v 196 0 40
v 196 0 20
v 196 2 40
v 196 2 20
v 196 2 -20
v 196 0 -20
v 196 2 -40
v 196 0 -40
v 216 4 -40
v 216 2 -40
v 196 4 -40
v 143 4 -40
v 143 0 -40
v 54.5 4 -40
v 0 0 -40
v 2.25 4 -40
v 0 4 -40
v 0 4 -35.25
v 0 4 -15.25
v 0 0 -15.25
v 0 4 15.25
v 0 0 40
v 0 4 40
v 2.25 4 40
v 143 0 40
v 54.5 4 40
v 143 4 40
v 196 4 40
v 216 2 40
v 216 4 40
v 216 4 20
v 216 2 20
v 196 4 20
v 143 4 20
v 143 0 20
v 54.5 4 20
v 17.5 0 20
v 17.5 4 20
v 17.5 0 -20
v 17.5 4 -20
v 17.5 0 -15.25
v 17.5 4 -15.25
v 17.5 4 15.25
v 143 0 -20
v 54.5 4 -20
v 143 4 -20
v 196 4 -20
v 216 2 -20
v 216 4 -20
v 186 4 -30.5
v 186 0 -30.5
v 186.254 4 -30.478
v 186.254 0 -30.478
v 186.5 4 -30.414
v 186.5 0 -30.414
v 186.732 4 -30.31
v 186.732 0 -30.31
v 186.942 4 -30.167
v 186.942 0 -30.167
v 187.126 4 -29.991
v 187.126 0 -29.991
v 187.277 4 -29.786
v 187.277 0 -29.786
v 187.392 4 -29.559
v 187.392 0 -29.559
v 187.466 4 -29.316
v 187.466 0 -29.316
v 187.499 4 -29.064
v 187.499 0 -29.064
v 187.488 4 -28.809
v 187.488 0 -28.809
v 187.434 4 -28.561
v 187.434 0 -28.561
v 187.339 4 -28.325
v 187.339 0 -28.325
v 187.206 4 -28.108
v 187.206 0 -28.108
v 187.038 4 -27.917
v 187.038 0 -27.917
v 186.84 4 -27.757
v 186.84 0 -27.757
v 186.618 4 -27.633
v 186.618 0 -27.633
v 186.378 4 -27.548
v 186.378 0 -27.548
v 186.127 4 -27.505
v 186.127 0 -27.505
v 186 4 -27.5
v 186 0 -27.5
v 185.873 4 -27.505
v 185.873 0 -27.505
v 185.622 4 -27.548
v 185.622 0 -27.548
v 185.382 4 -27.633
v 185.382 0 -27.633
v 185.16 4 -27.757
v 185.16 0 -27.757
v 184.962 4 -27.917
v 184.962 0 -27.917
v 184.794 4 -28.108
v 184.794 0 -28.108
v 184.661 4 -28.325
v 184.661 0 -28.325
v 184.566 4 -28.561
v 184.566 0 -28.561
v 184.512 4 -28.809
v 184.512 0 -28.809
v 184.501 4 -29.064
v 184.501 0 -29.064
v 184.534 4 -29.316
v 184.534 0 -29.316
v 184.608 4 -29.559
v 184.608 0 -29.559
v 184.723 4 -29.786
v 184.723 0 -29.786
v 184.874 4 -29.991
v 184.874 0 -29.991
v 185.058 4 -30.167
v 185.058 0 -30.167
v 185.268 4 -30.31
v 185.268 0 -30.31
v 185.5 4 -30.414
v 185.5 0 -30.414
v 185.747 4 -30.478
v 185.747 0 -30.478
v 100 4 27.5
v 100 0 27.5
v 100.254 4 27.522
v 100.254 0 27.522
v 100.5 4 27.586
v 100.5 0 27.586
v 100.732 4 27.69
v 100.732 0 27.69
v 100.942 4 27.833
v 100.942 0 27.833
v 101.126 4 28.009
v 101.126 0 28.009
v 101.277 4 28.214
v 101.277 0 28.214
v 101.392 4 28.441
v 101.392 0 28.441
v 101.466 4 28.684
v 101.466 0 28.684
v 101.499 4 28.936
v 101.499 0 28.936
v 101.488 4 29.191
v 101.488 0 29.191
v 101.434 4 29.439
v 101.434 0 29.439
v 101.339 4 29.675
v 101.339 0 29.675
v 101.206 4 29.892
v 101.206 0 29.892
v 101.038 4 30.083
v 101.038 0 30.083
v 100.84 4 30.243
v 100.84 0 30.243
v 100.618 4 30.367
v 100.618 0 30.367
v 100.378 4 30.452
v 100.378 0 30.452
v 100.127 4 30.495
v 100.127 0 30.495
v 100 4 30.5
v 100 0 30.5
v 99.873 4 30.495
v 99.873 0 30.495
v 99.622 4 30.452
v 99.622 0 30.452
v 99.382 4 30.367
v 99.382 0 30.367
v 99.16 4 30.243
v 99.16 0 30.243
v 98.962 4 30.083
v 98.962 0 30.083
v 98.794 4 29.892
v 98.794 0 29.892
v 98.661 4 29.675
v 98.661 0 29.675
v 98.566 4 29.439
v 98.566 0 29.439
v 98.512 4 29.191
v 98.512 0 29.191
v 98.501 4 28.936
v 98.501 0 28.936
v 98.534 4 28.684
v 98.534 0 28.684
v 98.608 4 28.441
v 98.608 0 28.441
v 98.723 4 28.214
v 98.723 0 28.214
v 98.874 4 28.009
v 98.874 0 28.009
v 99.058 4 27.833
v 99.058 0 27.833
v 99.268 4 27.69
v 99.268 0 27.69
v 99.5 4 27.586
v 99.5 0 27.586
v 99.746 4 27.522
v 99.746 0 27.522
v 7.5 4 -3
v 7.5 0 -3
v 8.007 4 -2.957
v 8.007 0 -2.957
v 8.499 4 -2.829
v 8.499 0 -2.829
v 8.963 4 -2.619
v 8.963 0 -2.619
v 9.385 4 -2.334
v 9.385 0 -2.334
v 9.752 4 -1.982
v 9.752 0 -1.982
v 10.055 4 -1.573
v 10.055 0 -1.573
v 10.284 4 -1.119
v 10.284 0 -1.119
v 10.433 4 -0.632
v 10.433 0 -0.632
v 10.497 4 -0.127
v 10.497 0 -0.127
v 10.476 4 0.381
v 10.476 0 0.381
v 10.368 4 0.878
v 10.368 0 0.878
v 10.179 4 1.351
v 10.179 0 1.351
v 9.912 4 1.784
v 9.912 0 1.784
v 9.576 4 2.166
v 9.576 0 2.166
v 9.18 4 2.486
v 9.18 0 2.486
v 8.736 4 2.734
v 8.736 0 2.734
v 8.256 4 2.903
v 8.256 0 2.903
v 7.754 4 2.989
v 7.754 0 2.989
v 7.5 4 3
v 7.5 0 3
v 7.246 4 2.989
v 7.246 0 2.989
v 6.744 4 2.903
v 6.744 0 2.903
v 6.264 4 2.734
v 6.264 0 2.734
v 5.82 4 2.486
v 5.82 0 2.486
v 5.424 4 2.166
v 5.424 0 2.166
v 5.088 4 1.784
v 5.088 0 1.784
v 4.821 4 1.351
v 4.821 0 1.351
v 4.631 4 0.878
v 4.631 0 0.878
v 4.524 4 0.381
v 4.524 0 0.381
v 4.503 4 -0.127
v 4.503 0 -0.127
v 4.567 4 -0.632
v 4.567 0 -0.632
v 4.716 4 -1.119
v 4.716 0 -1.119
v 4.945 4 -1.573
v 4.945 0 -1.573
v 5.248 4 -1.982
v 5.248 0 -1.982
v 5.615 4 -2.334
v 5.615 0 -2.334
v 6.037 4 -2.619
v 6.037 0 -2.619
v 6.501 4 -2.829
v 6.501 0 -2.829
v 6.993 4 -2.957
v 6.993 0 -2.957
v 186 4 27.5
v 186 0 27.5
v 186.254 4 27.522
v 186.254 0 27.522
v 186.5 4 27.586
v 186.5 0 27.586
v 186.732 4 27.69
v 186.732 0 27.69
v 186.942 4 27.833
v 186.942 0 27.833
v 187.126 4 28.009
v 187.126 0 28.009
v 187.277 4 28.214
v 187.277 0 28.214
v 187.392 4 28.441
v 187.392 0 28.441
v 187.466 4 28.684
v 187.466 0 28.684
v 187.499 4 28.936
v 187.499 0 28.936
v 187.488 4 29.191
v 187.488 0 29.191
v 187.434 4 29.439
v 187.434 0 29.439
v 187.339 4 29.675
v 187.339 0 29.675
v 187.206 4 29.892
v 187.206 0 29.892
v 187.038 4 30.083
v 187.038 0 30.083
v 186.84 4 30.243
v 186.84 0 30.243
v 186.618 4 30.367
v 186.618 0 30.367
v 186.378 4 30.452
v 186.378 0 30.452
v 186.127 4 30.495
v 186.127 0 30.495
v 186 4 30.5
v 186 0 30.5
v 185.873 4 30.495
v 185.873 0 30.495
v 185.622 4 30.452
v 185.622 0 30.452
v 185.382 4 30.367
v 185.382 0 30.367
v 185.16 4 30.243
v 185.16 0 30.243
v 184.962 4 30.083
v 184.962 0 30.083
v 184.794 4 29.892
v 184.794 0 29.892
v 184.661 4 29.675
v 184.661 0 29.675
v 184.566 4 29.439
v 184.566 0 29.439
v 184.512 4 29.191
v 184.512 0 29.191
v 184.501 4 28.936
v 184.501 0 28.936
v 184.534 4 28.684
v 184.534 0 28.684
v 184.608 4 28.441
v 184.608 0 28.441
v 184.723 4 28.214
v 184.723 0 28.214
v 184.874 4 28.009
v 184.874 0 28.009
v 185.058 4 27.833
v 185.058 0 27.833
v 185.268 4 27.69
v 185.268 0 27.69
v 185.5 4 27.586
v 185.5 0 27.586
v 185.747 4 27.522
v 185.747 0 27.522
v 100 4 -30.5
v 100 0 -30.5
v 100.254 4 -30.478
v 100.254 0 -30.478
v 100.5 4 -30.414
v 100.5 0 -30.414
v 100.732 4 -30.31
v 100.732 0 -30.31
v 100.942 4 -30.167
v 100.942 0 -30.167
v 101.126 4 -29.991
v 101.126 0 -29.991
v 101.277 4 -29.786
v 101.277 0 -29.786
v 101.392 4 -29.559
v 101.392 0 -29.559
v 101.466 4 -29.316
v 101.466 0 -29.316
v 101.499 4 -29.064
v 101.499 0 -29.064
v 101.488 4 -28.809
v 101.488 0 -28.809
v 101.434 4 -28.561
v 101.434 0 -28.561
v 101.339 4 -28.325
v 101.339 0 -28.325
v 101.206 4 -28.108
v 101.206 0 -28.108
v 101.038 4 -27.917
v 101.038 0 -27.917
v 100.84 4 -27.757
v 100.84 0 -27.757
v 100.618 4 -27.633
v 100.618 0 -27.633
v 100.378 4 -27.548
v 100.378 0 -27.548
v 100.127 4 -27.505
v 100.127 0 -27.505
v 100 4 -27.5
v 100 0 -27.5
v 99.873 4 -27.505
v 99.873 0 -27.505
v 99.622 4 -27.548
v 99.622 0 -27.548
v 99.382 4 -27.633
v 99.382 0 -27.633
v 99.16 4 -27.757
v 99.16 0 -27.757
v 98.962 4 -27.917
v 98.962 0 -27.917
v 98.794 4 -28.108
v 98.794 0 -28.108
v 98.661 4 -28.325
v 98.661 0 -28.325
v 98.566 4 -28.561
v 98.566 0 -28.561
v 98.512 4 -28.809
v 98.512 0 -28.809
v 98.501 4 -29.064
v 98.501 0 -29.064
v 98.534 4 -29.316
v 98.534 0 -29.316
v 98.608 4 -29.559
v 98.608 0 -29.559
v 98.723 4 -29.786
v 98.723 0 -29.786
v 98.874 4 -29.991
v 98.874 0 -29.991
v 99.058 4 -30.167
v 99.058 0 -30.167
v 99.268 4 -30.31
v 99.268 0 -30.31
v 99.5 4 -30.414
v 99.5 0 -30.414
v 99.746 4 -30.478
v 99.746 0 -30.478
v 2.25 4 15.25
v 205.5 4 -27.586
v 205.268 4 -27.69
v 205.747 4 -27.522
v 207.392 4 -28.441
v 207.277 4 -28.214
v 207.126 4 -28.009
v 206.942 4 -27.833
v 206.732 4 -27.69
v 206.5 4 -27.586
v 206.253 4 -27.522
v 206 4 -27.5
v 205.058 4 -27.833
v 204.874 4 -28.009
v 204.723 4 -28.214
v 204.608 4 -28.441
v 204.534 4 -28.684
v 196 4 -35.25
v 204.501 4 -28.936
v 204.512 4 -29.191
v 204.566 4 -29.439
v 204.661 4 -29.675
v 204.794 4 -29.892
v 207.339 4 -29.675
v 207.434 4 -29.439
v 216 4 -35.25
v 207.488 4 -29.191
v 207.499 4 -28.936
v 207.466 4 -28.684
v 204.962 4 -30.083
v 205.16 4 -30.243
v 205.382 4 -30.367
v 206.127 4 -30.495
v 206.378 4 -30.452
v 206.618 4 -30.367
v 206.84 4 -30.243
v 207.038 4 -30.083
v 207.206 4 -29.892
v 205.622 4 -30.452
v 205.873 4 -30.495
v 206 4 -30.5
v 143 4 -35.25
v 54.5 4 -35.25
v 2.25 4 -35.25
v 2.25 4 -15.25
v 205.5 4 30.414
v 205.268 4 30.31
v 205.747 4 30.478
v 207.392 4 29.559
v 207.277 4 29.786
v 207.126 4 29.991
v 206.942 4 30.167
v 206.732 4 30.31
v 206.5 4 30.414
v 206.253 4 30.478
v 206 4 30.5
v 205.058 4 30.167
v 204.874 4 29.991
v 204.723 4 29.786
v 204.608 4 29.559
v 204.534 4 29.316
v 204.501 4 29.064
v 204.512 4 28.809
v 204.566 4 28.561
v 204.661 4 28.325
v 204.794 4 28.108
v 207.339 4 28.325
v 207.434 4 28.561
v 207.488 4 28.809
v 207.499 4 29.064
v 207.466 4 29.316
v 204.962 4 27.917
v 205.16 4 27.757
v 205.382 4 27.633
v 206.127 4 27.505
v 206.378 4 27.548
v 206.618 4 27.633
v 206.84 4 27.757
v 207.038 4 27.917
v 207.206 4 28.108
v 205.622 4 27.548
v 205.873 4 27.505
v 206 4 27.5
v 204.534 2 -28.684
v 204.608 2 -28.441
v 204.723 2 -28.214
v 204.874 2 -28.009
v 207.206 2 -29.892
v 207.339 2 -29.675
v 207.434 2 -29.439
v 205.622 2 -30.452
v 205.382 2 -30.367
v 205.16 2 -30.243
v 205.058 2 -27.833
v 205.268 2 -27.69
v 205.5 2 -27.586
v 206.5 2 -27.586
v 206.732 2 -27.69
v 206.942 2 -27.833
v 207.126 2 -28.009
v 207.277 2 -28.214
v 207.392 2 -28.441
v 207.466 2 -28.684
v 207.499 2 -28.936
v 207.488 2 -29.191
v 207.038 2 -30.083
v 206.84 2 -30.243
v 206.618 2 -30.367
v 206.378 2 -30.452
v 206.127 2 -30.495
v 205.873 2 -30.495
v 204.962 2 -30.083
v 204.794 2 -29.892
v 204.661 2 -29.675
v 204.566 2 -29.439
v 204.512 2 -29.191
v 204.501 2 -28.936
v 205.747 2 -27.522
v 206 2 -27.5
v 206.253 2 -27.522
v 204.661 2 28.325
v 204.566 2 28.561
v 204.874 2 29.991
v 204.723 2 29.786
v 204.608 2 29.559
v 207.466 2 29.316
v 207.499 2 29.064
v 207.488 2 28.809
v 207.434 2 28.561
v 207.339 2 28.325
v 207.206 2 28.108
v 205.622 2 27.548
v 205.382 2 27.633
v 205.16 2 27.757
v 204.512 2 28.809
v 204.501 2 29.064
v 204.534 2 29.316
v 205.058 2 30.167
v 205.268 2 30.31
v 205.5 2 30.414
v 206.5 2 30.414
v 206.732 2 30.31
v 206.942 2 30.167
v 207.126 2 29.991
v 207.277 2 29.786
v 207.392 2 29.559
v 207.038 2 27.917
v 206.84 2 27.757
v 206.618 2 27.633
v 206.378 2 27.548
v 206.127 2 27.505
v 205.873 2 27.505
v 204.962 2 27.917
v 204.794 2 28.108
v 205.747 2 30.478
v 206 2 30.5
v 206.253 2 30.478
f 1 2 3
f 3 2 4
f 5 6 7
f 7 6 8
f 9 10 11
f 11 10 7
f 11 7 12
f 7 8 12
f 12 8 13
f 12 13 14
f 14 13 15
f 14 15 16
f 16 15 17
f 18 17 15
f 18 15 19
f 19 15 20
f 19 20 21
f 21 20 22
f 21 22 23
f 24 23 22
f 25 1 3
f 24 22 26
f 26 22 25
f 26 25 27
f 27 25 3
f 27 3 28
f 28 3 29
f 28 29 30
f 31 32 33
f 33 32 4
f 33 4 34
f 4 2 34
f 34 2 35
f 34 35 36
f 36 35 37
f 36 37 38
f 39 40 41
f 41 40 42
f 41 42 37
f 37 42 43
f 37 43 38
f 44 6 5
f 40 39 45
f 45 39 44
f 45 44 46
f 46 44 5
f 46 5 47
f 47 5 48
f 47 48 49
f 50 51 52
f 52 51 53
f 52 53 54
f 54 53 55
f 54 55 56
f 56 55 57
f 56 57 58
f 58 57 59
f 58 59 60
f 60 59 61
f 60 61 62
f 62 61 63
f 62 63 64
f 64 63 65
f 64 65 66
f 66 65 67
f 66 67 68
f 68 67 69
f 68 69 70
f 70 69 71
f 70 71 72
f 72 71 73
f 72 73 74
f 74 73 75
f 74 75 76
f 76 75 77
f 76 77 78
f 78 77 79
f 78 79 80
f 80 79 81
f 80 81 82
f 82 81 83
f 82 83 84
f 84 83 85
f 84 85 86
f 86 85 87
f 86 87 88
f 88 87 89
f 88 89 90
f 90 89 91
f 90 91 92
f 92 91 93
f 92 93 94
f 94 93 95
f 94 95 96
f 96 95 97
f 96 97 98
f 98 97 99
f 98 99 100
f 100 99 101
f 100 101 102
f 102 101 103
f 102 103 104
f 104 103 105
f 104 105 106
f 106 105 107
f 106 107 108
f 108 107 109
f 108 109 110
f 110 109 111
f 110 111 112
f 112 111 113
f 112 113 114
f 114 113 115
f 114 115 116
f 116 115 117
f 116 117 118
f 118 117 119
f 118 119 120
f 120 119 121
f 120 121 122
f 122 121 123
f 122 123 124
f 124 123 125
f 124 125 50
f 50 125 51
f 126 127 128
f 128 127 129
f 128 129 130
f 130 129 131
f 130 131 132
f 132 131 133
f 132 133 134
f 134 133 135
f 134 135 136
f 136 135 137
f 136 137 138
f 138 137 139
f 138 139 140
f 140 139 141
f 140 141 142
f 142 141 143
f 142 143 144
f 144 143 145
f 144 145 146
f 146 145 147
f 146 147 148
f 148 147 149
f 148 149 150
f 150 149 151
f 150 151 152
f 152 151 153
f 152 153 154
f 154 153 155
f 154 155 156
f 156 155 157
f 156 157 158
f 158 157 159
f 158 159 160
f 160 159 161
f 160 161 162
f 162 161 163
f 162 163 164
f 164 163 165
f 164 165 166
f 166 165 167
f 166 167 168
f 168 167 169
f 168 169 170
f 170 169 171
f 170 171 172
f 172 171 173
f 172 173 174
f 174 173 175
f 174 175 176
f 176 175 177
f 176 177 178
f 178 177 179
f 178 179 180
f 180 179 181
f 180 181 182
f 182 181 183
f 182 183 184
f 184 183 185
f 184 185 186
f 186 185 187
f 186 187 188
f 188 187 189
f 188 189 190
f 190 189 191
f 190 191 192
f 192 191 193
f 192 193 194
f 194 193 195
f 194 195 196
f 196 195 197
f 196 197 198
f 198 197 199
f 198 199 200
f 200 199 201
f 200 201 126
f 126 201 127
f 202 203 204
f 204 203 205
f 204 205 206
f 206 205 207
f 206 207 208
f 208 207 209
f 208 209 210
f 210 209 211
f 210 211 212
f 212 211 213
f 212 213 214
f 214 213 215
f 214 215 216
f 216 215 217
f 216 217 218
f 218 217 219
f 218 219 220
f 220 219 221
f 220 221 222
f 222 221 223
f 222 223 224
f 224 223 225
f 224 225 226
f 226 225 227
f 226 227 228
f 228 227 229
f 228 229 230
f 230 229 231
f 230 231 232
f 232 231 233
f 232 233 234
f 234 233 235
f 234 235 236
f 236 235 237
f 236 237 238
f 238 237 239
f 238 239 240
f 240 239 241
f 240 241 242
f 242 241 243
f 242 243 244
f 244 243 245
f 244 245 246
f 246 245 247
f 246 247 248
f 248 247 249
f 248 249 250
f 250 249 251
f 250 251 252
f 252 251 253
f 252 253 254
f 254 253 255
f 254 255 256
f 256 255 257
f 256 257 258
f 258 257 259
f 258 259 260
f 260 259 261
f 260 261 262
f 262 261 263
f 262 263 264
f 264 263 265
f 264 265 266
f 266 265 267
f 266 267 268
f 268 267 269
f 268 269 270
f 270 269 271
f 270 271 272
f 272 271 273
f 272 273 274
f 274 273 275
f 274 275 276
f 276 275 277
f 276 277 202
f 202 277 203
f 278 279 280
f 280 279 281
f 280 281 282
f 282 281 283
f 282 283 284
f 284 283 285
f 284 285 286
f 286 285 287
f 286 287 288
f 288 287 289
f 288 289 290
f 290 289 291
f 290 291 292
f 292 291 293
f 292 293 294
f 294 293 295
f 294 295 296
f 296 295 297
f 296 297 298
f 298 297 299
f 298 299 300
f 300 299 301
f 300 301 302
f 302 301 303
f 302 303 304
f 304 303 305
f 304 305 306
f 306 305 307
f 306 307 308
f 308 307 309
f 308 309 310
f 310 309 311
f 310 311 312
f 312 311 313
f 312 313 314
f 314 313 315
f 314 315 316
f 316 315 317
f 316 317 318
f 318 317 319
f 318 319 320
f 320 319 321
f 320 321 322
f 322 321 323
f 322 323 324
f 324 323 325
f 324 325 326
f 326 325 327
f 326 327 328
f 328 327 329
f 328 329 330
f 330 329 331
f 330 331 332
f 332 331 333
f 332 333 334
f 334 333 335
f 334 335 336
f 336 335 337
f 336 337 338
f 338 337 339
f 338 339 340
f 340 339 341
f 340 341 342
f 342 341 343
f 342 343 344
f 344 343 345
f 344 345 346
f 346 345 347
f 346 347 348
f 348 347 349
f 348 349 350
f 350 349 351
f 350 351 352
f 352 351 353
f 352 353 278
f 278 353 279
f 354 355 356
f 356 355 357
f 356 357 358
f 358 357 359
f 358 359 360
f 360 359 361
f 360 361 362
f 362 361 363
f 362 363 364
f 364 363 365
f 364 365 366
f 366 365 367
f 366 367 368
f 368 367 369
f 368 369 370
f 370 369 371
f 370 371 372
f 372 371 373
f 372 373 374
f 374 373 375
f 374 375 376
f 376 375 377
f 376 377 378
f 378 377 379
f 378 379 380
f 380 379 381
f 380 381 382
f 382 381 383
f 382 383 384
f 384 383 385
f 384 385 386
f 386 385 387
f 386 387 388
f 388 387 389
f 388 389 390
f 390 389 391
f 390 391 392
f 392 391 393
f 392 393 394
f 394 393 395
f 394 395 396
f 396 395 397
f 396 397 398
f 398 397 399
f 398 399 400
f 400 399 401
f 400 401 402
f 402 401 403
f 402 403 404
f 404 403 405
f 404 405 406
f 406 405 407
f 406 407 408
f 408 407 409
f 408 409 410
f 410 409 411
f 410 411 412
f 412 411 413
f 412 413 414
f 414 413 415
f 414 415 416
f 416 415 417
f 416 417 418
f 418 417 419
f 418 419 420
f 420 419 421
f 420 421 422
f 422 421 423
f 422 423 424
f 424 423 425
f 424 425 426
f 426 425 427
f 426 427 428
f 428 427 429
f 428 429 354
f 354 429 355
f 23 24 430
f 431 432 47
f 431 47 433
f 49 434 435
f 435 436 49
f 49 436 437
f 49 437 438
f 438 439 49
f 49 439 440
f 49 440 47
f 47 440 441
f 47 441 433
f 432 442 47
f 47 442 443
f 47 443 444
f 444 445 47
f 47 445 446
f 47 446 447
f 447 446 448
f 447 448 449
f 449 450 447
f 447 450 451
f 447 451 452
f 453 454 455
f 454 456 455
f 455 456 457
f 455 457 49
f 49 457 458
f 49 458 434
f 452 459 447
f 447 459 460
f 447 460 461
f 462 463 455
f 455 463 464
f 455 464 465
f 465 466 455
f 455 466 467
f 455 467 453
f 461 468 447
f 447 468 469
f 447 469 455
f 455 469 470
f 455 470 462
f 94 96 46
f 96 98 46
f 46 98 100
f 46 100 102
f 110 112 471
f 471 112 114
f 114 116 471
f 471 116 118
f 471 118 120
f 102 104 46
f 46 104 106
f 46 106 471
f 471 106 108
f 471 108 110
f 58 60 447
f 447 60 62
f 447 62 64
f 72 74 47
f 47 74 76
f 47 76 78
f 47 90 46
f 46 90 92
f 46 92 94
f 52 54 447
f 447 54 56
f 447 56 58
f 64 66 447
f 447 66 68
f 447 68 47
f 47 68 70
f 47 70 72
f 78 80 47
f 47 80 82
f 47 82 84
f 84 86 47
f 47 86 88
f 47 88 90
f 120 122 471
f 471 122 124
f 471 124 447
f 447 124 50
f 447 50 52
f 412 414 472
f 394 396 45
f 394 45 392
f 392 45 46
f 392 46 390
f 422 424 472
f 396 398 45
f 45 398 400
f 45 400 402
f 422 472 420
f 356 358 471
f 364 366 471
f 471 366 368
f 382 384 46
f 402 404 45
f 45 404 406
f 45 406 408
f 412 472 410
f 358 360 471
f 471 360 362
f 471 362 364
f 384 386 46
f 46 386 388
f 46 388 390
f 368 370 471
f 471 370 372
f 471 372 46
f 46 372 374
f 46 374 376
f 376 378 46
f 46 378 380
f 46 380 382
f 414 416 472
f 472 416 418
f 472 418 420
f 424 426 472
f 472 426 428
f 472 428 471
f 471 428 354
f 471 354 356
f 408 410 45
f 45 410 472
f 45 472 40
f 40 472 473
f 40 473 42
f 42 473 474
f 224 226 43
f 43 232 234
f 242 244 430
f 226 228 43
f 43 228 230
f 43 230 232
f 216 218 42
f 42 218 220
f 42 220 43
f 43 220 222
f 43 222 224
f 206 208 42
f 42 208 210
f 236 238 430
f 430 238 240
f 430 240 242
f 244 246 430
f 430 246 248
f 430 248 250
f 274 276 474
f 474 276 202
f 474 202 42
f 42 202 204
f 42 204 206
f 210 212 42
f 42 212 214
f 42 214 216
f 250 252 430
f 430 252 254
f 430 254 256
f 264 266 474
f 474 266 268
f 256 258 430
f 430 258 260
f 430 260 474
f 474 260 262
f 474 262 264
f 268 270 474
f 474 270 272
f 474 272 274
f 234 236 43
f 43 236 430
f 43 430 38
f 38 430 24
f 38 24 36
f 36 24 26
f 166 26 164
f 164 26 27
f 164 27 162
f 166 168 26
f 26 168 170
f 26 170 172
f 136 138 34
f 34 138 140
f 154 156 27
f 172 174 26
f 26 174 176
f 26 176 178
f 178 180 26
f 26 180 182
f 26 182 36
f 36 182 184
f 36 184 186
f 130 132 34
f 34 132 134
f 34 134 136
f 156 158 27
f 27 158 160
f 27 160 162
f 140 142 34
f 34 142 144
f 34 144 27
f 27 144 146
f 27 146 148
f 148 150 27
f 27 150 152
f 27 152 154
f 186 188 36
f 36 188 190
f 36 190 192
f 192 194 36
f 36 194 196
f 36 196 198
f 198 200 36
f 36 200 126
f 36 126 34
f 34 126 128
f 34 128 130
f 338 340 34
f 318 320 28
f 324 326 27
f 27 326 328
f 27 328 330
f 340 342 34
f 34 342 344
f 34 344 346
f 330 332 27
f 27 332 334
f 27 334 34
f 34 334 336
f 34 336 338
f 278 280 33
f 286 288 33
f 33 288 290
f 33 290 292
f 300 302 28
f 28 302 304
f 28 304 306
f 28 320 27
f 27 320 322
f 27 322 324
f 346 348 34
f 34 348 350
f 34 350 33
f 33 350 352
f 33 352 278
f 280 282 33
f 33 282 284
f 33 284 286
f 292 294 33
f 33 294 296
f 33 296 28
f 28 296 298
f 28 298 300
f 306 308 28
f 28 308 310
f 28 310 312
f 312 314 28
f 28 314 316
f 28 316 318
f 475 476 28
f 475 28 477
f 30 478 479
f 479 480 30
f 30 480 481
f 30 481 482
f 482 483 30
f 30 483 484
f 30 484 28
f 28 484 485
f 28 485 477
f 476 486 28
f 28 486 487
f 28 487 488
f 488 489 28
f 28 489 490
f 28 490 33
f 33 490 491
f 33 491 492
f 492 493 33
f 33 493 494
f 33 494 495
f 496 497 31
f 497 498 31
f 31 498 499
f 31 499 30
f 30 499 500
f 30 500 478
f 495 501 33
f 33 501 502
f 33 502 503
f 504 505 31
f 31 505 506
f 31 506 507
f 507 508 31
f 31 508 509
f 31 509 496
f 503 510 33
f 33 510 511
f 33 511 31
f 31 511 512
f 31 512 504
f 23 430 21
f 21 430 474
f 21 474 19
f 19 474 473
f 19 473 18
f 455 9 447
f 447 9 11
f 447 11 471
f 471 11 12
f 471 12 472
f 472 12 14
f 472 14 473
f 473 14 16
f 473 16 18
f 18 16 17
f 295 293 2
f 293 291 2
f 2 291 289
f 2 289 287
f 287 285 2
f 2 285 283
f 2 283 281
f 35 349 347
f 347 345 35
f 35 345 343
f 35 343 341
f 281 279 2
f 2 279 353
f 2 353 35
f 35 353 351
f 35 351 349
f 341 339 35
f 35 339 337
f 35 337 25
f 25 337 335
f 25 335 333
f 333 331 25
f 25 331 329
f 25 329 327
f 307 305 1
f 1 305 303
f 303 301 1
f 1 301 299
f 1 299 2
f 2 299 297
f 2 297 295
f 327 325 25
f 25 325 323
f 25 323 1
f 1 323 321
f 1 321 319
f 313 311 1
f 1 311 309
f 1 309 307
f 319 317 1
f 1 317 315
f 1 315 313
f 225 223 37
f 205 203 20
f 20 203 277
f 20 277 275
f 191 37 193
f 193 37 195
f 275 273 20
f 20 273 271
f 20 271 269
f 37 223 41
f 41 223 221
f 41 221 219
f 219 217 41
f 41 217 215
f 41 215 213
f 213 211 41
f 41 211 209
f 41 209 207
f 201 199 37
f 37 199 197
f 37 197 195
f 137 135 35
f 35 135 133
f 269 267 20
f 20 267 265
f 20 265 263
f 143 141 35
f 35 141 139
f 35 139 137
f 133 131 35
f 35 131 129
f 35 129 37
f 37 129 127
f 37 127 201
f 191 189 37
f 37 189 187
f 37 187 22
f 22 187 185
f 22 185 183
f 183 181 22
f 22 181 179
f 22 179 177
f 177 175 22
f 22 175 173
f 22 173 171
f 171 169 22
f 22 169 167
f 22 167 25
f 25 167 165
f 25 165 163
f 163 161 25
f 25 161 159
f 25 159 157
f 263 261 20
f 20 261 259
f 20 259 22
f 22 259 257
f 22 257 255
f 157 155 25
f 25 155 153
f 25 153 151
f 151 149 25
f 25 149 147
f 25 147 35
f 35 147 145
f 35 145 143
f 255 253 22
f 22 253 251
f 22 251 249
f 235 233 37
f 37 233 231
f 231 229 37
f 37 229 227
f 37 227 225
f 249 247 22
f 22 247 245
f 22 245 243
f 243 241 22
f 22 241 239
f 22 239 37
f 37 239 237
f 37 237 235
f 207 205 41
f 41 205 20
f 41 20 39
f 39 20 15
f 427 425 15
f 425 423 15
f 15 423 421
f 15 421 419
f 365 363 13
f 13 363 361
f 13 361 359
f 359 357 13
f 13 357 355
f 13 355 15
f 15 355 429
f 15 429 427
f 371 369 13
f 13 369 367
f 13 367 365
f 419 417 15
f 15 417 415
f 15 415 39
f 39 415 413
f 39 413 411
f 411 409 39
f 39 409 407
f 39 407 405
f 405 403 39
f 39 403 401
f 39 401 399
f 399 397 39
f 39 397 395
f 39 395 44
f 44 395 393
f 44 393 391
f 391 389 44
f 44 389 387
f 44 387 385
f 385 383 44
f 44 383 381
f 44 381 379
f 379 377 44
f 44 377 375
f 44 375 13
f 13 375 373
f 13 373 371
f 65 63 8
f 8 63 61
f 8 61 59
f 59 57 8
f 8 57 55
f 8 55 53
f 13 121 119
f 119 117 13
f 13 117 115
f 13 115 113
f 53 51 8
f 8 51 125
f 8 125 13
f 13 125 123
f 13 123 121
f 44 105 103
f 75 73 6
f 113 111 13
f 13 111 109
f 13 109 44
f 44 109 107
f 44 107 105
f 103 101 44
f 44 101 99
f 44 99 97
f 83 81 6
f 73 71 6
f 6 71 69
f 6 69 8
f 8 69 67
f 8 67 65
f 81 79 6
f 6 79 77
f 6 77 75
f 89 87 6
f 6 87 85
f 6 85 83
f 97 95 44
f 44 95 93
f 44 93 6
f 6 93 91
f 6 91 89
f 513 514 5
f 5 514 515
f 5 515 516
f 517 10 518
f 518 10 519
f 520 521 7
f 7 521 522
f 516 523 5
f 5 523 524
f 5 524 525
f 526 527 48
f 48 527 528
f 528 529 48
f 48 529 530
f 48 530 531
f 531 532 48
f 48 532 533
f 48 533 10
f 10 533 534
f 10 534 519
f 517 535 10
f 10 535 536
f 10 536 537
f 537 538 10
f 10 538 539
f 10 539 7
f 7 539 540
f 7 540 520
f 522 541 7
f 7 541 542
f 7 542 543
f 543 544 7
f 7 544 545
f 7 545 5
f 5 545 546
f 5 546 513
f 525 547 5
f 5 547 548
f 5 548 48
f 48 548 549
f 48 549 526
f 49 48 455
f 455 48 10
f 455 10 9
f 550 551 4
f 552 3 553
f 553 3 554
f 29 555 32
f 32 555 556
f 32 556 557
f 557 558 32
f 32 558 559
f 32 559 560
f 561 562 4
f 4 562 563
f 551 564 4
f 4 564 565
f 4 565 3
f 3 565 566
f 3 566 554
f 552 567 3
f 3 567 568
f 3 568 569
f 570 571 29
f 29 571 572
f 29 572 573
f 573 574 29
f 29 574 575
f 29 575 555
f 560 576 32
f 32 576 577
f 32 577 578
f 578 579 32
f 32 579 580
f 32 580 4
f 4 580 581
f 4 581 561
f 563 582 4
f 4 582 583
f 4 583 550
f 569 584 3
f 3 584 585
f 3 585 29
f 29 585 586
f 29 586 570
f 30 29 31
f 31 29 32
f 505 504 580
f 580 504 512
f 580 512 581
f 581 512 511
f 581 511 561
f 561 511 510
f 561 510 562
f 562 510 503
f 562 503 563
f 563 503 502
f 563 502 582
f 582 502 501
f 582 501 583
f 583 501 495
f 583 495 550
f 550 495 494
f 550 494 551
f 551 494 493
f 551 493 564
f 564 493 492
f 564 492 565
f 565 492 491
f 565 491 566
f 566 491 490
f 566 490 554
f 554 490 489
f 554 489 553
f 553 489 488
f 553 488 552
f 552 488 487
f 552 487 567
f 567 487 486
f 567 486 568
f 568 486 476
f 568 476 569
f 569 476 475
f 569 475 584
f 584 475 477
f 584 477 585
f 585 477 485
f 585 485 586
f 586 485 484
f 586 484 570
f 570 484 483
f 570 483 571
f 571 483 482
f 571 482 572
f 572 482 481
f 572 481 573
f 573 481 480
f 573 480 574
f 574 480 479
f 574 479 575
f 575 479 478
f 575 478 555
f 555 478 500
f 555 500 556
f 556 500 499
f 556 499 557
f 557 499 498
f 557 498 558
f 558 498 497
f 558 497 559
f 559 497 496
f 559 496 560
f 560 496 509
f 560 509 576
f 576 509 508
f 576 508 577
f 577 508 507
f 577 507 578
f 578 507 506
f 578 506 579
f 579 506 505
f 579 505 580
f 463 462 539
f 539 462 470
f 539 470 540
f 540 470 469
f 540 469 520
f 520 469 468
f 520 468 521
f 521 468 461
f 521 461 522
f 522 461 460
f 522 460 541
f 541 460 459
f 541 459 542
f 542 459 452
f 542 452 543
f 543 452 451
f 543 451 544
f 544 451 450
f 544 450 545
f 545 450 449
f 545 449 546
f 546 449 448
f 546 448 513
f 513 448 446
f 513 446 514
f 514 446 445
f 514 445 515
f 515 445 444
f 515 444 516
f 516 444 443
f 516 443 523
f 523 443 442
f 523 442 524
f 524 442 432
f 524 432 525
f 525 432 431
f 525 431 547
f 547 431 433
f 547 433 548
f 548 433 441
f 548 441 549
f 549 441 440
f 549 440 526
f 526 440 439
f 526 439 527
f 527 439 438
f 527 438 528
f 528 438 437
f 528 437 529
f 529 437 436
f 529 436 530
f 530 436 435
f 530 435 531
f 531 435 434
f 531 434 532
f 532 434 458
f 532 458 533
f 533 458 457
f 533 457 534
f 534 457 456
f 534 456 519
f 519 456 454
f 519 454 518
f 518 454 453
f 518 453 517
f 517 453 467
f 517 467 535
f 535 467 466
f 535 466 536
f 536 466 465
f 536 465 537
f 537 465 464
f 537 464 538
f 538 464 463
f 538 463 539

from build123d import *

# Parameters (mm, degrees)
SKETCH1_R           = 1.5
BOSS_EXTRUDE1_DEPTH = 4
SKETCH2_W           = 20
SKETCH2_H           = 2
BOSS_EXTRUDE2_DEPTH = 20
CUT_EXTRUDE1_START  = -10
SKETCH4_R           = 1.5
CUT_EXTRUDE1_DEPTH  = 10


with BuildPart() as part:
    # Sketch1 → Boss-Extrude1 (new body)
    # profile 1 of 2: a face of its own
    with BuildSketch(Plane(origin=(0, 0, 0), x_dir=(1, 0, 0), z_dir=(0, 1, 0))):
        with BuildLine():
            Line((0, 0), (0, -40))
            Line((0, -40), (196, -40))
            Line((196, -40), (196, -20))
            Line((196, -20), (17.5, -20))
            Line((17.5, -20), (17.5, 0))
            Line((17.5, 0), (10.5, 0))
            ThreePointArc((10.5, 0), (7.5, -3), (4.5, 0))
            Line((4.5, 0), (0, 0))
        make_face()
        with Locations(Location((100, -29, 0), (0, 0, 270))):
            Circle(SKETCH1_R, mode=Mode.SUBTRACT)
        with Locations(Location((186, -29, 0), (0, 0, 270))):
            Circle(SKETCH1_R, mode=Mode.SUBTRACT)
    # profile 2 of 2: a face of its own
    with BuildSketch(Plane(origin=(0, 0, 0), x_dir=(1, 0, 0), z_dir=(0, 1, 0))):
        with BuildLine():
            Line((0, 40), (0, 0))
            Line((0, 0), (4.5, 0))
            ThreePointArc((4.5, 0), (7.5, 3), (10.5, 0))
            Line((10.5, 0), (17.5, 0))
            Line((17.5, 0), (17.5, 20))
            Line((17.5, 20), (196, 20))
            Line((196, 20), (196, 40))
            Line((196, 40), (0, 40))
        make_face()
        with Locations(Location((100, 29, 0), (0, 0, 270))):
            Circle(SKETCH1_R, mode=Mode.SUBTRACT)
        with Locations(Location((186, 29, 0), (0, 0, 270))):
            Circle(SKETCH1_R, mode=Mode.SUBTRACT)
    extrude(amount=BOSS_EXTRUDE1_DEPTH)

    # Sketch2 → Boss-Extrude2 (add)
    with BuildSketch(Plane(origin=(196, 0, 0), x_dir=(0, 0, -1), z_dir=(1, 0, 0))):
        with Locations((30, 3)):
            Rectangle(SKETCH2_W, SKETCH2_H)
        with Locations((-30, 3)):
            Rectangle(SKETCH2_W, SKETCH2_H)
    extrude(amount=BOSS_EXTRUDE2_DEPTH)

    # Sketch4 → Cut-Extrude1 (cut)
    with BuildSketch(Plane(origin=(0, 4, 0), x_dir=(1, 0, 0), z_dir=(0, 1, 0)).offset(CUT_EXTRUDE1_START)):
        with Locations(Location((186, 29, 0), (0, 0, 270))):
            Circle(SKETCH4_R)
        with Locations(Location((186, -29, 0), (0, 0, 270))):
            Circle(SKETCH4_R)
        with Locations(Location((206, 29, 0), (0, 0, 270))):
            Circle(SKETCH4_R)
        with Locations(Location((206, -29, 0), (0, 0, 270))):
            Circle(SKETCH4_R)
    extrude(amount=CUT_EXTRUDE1_DEPTH, mode=Mode.SUBTRACT)


solid = part.part
